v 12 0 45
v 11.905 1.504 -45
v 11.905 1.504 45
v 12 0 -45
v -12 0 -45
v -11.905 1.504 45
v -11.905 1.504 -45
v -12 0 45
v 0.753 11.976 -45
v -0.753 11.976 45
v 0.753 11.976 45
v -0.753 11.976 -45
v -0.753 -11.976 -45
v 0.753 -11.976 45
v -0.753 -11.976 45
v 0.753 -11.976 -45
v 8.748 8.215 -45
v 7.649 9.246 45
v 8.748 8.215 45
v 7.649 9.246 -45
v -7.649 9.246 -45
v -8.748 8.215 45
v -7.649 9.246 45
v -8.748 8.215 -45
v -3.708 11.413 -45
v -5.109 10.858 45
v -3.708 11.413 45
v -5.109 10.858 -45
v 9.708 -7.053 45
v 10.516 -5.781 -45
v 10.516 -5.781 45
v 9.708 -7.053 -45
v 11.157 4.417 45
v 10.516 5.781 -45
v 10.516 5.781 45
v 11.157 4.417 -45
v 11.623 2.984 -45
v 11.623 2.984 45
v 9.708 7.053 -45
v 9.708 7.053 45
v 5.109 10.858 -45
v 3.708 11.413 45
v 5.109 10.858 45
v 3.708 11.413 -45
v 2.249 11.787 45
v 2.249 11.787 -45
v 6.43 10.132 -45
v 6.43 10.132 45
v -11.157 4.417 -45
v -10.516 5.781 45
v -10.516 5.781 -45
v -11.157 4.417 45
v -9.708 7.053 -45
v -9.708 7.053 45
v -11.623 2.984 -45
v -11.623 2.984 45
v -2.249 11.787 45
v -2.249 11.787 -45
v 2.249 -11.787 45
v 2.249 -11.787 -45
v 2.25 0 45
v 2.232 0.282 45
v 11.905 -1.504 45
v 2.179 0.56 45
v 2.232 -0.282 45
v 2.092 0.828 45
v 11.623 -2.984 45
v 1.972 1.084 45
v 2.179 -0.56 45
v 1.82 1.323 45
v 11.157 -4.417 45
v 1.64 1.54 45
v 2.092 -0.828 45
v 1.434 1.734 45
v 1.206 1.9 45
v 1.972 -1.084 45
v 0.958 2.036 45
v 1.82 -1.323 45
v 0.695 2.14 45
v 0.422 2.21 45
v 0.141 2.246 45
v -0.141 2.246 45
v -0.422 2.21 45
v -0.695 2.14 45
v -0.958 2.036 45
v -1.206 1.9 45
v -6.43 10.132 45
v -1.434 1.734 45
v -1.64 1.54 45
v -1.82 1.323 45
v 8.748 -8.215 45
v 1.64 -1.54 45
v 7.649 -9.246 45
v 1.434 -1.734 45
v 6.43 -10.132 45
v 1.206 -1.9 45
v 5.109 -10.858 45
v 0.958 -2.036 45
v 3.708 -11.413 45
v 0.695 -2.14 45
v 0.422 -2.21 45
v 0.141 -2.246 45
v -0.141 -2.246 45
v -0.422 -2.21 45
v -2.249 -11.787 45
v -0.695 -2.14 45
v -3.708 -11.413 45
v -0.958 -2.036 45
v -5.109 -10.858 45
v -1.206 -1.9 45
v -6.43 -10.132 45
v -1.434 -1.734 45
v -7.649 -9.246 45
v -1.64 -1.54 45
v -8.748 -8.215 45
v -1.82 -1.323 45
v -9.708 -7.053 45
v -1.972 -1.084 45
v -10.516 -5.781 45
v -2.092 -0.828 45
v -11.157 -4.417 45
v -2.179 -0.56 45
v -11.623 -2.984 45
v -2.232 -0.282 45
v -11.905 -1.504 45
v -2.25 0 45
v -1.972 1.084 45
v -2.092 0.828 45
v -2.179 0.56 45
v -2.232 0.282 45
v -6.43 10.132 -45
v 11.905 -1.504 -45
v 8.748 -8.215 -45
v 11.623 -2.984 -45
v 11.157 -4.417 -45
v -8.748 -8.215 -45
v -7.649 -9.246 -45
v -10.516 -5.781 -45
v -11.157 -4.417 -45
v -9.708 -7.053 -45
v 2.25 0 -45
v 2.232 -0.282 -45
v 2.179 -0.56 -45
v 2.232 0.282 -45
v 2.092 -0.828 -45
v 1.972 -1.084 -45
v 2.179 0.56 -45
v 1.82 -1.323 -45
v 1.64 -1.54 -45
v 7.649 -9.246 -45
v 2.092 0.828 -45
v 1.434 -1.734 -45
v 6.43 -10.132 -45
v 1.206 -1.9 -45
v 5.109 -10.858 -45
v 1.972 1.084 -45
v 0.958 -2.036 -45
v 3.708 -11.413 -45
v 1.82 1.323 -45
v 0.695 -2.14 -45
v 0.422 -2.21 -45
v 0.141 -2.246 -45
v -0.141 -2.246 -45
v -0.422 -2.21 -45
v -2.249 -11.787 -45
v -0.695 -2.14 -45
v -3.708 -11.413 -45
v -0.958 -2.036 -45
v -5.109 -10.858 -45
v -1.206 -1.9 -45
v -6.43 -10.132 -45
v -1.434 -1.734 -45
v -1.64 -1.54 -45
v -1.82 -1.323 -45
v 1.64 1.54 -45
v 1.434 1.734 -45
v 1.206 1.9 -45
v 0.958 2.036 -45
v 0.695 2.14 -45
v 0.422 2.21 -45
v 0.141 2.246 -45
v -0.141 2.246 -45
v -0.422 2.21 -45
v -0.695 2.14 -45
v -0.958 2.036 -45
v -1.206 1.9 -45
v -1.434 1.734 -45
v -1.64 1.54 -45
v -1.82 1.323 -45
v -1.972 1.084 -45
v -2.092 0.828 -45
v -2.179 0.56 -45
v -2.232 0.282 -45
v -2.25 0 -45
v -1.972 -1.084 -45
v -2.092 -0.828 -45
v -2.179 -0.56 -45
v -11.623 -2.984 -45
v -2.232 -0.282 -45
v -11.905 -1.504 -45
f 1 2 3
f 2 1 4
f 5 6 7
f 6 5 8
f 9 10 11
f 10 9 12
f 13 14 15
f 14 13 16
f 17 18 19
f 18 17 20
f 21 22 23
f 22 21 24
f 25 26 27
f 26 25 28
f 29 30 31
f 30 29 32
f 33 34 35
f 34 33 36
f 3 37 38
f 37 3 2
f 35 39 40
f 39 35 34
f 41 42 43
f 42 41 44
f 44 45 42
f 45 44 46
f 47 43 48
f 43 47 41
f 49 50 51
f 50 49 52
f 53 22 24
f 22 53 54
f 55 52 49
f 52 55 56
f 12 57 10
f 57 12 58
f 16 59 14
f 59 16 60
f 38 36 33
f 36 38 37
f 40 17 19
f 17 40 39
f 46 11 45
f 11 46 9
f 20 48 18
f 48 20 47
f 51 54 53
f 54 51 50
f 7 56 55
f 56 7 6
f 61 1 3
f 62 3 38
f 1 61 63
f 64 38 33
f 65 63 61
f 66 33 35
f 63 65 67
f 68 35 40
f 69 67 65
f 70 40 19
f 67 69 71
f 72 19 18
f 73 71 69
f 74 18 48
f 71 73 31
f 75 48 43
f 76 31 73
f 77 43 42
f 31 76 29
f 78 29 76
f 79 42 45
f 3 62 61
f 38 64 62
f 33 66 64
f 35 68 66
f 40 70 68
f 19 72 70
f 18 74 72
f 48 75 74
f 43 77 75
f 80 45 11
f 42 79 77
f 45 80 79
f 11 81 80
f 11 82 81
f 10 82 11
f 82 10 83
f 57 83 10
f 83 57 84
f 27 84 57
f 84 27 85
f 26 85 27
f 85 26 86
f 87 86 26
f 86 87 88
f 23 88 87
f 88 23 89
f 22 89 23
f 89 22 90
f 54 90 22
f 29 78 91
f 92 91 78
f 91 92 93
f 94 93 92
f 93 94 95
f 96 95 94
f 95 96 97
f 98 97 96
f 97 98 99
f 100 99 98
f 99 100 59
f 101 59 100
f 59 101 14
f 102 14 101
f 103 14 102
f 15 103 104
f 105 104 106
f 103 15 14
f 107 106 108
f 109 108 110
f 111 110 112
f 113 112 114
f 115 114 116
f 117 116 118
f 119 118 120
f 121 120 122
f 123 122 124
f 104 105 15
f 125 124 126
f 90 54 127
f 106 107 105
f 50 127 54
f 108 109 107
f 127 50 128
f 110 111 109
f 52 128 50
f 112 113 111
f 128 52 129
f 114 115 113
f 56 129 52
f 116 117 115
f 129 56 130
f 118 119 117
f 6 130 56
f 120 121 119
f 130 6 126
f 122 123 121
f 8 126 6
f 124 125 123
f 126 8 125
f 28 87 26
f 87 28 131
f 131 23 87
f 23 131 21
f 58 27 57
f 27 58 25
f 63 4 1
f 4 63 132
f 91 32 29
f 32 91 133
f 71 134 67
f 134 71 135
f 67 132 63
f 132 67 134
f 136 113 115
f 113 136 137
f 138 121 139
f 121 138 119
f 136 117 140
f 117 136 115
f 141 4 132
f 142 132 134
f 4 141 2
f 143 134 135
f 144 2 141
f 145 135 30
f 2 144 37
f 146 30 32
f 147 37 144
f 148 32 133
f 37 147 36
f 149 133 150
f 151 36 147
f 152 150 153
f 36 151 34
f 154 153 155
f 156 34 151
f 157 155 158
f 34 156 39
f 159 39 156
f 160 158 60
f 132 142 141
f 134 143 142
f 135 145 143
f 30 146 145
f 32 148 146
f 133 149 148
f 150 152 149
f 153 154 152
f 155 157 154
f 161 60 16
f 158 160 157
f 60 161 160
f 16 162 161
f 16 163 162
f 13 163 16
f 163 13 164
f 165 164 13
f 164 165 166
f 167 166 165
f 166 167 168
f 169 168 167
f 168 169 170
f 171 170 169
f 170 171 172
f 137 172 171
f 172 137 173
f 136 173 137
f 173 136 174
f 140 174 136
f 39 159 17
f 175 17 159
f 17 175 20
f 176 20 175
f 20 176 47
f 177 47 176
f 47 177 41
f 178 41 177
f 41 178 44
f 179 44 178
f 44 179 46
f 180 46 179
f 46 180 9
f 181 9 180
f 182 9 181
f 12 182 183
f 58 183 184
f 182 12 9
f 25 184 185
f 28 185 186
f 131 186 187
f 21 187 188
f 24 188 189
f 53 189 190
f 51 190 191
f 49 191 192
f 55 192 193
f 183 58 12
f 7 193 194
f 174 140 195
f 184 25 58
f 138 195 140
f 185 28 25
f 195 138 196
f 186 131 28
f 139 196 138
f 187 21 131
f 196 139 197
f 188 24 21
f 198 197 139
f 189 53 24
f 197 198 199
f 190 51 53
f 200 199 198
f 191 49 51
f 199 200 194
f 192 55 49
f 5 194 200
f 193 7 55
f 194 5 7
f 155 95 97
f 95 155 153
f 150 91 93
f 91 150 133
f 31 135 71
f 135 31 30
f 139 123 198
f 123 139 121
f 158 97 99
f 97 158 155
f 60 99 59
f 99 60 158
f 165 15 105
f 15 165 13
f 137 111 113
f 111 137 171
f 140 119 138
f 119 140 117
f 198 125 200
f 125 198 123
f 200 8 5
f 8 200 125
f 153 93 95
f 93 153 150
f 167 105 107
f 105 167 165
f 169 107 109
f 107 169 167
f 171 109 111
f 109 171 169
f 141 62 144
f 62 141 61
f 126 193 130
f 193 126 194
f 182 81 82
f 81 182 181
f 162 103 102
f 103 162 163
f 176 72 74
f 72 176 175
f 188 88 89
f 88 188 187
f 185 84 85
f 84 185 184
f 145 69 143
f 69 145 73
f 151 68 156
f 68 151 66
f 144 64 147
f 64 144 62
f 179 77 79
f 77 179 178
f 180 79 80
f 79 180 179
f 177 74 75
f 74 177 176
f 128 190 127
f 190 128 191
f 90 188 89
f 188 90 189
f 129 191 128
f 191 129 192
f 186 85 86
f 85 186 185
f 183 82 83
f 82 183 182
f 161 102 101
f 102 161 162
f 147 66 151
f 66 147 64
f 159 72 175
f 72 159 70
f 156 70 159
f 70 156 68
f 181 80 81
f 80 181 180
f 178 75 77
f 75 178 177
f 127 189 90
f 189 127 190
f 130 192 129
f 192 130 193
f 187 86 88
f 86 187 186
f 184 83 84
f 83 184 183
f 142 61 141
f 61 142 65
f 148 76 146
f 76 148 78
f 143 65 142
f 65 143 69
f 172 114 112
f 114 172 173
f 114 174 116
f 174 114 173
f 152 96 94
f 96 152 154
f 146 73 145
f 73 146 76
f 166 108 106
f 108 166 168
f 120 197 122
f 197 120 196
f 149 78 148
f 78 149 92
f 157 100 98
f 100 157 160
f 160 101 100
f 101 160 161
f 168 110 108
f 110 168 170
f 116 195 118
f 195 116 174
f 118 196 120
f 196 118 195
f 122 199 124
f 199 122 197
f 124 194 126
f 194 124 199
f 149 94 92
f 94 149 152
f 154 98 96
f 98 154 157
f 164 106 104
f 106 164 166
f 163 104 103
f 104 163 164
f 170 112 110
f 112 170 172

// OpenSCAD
$fn = 50;


difference() {
	union() {
		translate(v = [0, 0, -45.0000000000]) {
			cylinder(h = 90, r = 12.0000000000);
		}
	}
	union() {
		translate(v = [0, 0, -100.0000000000]) {
			cylinder(h = 200, r = 2.2500000000);
		}
	}
}
